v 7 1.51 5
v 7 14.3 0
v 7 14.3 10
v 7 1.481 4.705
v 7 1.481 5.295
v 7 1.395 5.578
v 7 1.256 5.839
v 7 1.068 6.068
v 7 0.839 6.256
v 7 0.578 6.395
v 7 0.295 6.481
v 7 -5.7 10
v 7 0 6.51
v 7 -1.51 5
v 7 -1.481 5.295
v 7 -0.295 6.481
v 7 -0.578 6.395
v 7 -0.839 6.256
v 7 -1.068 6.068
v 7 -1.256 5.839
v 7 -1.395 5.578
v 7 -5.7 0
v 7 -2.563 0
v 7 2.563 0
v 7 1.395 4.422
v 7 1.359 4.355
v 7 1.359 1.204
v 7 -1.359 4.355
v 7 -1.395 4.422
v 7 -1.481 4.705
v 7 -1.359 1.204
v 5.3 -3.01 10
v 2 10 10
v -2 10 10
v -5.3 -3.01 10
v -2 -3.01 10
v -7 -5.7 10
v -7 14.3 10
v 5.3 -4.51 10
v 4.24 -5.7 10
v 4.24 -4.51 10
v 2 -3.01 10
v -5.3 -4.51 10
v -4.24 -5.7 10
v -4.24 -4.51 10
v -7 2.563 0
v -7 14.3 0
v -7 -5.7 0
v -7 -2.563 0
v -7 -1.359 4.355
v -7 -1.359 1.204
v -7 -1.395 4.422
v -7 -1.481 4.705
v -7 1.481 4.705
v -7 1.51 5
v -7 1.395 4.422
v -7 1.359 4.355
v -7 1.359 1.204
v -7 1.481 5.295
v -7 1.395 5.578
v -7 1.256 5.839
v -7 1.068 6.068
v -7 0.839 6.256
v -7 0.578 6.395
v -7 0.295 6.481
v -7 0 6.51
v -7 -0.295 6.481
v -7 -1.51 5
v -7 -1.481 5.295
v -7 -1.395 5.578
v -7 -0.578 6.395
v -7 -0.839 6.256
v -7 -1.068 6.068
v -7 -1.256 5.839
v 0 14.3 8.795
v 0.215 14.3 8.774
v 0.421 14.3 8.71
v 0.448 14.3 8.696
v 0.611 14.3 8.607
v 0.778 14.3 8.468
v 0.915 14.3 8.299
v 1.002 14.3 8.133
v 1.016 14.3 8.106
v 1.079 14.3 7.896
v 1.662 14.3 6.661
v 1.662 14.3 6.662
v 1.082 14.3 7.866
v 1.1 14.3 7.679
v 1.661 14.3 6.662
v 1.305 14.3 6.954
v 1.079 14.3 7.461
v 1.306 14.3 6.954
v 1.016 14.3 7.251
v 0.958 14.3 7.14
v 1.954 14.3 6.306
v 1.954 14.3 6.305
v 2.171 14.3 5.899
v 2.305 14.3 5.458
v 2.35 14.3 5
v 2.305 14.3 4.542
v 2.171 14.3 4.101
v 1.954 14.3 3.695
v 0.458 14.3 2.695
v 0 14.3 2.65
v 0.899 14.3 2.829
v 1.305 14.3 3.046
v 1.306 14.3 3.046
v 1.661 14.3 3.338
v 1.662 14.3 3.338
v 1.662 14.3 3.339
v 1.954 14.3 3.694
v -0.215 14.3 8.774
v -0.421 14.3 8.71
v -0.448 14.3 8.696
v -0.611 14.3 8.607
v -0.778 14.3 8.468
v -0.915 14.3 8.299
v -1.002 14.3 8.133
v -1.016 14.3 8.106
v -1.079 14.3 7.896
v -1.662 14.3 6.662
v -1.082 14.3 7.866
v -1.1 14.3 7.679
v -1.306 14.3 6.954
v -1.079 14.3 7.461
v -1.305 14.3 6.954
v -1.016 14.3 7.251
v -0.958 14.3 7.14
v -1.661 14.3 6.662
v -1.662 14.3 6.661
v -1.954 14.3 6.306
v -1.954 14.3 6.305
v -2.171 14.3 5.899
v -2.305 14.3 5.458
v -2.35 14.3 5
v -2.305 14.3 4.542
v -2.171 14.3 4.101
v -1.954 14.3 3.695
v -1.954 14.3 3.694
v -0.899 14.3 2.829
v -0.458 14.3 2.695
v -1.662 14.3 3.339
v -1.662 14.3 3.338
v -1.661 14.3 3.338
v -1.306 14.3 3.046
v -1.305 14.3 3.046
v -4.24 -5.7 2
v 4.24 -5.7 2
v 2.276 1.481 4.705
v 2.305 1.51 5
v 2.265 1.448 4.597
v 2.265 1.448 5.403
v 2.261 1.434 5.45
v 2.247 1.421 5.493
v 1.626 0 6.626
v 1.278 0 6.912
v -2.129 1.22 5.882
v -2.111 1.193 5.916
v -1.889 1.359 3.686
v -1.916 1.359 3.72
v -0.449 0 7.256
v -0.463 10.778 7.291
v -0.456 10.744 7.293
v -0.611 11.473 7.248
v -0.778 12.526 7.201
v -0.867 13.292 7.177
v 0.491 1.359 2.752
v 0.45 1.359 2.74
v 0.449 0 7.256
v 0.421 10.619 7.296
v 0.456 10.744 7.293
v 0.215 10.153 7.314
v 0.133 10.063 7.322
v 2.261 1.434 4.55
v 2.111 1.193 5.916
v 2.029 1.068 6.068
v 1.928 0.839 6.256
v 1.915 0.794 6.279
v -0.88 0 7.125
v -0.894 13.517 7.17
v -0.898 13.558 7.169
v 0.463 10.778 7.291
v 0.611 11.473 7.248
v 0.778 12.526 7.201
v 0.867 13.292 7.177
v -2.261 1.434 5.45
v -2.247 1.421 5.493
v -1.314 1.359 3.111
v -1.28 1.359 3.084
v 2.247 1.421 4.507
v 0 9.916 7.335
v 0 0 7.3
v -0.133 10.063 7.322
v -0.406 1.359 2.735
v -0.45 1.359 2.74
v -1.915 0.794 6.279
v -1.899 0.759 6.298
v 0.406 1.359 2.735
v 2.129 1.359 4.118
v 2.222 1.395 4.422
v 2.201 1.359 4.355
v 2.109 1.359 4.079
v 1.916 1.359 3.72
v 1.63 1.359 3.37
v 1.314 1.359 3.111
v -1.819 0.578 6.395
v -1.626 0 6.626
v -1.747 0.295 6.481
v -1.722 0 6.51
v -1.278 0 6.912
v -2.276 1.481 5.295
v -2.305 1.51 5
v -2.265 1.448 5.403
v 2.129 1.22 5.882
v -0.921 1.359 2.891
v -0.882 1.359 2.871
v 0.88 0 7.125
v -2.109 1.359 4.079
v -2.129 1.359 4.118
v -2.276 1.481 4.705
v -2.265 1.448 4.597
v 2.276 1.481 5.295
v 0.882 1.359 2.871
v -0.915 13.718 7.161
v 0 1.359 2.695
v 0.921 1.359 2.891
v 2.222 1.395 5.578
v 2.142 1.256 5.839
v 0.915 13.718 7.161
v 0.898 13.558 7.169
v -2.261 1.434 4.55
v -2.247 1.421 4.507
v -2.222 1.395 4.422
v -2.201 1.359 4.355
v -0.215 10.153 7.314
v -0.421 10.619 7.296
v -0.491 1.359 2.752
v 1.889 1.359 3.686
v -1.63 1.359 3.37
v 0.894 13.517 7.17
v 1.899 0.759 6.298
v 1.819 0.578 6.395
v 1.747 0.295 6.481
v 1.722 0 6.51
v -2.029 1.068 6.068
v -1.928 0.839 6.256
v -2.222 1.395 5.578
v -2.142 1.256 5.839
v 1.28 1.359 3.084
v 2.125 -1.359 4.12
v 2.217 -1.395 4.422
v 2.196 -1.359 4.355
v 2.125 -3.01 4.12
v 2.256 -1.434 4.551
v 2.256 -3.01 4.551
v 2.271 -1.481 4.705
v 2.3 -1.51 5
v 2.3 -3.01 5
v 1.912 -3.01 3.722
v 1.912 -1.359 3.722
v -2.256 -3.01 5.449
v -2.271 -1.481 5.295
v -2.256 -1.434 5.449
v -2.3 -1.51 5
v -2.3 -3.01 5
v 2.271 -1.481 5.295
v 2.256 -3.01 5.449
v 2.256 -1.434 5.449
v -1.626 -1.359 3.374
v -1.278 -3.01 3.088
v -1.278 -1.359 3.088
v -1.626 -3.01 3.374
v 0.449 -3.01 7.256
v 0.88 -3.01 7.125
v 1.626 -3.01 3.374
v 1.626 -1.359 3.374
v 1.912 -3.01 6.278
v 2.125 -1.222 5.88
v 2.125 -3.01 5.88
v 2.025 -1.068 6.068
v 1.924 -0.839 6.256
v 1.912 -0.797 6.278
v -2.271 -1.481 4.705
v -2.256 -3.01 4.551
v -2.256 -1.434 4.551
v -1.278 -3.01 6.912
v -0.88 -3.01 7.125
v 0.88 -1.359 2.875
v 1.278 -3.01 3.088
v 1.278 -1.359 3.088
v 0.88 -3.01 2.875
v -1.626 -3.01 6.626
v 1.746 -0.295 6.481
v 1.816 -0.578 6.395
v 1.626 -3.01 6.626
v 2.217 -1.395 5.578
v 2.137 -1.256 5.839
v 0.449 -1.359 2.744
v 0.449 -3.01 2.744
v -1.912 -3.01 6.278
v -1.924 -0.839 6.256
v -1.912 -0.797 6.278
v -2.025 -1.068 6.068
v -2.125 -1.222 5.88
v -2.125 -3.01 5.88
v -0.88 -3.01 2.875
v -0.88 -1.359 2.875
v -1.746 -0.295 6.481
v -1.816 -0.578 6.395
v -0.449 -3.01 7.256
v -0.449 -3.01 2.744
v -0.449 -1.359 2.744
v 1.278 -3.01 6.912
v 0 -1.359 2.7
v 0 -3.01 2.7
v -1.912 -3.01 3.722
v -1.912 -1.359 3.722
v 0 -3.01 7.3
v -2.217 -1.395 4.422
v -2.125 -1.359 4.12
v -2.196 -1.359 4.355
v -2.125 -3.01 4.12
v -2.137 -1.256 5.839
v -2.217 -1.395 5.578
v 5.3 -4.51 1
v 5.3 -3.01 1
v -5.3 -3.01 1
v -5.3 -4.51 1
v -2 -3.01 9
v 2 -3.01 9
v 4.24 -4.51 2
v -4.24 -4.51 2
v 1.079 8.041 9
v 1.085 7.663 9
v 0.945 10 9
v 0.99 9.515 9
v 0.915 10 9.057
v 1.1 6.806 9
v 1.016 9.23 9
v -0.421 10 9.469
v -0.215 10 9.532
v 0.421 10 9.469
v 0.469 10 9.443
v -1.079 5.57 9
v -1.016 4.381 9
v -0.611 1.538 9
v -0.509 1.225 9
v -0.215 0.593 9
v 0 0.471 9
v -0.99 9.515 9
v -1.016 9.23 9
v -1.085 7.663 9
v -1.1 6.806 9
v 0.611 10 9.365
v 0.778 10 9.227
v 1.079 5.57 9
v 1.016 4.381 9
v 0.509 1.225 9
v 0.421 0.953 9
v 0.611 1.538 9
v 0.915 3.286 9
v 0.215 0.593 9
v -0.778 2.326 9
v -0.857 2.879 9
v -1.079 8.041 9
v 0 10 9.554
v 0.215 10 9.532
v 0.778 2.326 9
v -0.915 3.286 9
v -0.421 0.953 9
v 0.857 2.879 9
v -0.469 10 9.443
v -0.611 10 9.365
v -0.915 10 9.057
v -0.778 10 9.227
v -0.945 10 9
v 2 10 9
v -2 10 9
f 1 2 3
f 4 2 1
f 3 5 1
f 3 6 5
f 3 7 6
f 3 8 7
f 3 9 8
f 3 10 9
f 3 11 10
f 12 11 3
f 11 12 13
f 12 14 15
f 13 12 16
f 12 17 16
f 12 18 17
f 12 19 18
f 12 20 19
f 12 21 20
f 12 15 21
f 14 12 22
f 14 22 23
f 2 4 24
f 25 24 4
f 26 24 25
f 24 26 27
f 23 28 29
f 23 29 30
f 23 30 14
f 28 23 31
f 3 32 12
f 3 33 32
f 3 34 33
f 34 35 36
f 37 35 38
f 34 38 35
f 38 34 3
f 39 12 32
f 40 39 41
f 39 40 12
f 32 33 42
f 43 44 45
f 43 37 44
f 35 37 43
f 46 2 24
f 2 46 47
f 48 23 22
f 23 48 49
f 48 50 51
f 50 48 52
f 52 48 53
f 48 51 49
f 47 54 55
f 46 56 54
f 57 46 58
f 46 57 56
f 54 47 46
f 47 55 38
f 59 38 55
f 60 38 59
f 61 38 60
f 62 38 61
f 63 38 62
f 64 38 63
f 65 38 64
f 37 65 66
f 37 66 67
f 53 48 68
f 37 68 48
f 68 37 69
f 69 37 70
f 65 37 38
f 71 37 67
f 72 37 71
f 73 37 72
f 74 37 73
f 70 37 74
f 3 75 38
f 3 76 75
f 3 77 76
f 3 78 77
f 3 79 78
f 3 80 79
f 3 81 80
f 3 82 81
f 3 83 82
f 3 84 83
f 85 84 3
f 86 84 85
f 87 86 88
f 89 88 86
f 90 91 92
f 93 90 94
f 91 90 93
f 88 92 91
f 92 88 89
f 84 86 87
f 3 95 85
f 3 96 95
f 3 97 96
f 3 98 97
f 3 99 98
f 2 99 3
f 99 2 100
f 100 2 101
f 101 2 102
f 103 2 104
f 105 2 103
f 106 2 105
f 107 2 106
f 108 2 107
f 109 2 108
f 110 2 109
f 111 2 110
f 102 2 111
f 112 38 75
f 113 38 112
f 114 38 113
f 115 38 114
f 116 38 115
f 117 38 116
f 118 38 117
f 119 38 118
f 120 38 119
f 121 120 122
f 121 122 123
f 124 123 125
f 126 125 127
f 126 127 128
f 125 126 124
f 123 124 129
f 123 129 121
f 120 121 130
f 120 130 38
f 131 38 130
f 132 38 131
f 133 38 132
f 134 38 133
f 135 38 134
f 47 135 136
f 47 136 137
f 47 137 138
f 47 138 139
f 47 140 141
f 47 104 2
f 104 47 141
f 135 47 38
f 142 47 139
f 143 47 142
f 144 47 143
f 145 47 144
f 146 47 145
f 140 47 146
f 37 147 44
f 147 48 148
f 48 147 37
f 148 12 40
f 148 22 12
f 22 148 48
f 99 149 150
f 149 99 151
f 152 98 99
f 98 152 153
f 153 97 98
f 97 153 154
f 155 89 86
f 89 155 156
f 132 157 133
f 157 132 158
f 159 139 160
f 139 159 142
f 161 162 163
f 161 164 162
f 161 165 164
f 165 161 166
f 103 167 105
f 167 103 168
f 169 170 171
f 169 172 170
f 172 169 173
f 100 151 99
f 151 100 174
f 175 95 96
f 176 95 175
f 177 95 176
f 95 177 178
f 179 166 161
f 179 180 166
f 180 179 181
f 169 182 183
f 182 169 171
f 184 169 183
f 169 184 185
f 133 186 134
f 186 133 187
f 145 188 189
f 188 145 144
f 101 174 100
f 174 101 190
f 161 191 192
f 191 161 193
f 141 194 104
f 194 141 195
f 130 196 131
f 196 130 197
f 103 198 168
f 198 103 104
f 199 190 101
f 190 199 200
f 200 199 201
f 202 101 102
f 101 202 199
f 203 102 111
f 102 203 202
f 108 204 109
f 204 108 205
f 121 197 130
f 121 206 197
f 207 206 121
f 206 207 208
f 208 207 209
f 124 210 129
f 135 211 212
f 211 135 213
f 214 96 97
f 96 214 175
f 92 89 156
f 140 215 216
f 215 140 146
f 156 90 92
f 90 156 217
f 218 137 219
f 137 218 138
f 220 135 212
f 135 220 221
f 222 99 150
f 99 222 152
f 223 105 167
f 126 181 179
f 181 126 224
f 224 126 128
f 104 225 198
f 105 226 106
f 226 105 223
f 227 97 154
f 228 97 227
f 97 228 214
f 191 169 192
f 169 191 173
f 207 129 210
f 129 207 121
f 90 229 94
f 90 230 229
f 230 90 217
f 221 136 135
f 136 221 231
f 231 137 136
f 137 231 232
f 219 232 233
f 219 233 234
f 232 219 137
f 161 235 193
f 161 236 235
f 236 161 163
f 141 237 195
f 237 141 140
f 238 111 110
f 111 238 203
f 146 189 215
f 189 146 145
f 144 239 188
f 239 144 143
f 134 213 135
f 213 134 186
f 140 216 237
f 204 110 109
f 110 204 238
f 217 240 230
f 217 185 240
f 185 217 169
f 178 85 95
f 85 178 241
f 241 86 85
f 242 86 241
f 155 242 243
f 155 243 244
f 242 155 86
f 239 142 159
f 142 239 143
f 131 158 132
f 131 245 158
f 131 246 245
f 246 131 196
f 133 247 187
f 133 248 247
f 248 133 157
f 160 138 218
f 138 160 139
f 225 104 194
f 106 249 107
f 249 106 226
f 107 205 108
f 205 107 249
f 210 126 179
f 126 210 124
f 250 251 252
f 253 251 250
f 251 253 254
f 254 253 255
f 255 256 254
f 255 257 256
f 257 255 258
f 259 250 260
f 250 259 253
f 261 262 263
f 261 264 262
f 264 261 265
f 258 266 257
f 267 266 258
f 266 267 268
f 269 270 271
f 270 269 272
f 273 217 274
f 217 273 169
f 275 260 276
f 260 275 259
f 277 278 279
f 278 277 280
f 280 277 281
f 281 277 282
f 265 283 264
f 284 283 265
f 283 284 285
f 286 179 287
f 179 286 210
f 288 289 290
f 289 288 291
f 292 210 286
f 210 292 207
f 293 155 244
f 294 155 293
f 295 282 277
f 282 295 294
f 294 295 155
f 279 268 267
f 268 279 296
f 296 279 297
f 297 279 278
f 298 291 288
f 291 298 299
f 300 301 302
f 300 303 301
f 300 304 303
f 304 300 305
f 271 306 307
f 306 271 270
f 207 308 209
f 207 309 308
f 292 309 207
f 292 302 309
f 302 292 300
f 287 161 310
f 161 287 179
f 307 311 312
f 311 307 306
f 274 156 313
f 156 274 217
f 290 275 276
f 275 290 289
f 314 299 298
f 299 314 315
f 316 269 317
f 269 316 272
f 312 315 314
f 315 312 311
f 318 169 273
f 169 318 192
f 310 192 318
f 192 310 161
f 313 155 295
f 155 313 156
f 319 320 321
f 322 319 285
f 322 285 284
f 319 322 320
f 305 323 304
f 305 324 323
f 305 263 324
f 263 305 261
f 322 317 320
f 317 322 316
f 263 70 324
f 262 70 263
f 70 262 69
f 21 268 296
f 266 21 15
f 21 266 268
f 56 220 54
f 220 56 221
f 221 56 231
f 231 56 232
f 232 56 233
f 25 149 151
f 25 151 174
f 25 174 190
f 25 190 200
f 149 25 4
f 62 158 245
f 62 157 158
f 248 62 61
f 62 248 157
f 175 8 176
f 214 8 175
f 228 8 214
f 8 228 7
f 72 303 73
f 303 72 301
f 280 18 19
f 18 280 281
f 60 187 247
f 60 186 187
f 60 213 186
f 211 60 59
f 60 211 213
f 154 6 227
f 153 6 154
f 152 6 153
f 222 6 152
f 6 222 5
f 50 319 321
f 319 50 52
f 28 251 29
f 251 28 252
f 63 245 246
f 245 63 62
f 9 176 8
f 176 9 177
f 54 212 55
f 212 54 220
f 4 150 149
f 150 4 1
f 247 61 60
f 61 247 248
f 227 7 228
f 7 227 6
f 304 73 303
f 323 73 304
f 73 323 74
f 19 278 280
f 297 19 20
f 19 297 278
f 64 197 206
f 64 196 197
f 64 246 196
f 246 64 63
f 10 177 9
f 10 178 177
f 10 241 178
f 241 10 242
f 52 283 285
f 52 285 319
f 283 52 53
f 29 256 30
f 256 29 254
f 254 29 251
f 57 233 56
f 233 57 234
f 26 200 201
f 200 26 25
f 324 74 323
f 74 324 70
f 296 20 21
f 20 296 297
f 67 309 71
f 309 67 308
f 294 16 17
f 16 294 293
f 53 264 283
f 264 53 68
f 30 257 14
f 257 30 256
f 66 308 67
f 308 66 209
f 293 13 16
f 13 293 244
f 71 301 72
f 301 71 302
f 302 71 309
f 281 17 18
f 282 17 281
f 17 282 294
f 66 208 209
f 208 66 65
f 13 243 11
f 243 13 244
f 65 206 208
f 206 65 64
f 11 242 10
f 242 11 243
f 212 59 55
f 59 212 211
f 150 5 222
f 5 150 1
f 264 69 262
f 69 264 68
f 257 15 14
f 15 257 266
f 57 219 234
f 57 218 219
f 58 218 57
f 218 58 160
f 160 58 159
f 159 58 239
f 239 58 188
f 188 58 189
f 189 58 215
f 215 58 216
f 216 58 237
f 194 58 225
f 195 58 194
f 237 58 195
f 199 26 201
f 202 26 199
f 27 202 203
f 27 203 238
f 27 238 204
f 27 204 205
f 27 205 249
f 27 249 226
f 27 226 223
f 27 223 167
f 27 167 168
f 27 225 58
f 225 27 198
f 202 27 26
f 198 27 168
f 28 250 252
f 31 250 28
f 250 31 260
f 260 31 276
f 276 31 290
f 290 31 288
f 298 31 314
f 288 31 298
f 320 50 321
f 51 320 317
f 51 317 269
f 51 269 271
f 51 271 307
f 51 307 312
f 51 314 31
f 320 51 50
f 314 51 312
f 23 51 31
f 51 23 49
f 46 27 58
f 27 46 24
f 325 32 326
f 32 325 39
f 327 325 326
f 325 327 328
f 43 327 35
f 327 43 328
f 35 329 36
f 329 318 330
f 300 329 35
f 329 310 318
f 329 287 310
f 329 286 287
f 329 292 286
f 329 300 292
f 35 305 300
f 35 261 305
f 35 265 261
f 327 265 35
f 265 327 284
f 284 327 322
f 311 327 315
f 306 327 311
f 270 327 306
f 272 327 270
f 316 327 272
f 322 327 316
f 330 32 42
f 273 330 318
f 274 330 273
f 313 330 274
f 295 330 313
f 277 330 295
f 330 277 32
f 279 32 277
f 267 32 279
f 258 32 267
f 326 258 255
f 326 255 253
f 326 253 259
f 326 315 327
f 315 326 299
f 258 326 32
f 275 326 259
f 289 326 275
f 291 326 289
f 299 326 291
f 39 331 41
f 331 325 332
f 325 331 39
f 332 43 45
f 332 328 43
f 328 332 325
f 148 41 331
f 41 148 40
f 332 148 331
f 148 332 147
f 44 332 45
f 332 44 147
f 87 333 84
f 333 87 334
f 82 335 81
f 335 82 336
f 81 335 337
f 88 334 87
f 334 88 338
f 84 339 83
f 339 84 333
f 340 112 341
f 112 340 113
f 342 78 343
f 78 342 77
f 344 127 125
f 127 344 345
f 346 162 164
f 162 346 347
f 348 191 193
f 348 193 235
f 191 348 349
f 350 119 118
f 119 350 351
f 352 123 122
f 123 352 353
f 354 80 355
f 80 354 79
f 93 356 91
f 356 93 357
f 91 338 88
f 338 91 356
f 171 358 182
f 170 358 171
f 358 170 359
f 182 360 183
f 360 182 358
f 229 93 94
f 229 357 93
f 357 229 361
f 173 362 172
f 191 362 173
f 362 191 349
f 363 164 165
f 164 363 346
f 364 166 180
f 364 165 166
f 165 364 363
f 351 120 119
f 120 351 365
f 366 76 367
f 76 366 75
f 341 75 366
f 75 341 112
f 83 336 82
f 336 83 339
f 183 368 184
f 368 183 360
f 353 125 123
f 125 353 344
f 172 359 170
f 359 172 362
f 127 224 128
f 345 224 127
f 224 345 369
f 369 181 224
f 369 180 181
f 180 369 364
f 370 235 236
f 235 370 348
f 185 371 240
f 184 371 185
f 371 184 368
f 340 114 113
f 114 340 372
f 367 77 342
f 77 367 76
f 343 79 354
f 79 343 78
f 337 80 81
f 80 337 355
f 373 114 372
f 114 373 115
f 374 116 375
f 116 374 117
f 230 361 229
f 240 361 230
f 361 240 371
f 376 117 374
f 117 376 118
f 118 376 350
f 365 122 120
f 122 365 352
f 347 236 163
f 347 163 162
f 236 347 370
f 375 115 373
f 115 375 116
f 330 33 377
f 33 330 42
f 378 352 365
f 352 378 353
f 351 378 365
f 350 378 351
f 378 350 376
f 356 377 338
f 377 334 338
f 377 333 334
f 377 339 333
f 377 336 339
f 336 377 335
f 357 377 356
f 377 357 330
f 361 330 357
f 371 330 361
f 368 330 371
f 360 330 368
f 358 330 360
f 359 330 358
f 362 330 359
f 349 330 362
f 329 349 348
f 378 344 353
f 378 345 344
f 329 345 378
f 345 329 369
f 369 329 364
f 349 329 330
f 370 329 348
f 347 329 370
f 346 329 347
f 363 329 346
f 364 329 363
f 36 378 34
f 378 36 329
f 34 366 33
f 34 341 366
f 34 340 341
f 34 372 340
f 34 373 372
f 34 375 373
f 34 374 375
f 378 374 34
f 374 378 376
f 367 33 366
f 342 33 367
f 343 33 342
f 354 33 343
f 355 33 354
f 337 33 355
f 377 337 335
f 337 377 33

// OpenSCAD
// file: light_connector_lib.scad
/*

  light_connector_lib.scad
   
  
  3mm x 120mm
  https://www.greenstuffworld.com/de/flugbasestaebe/600-3-mm-runde-acryl-staebe-transparent.html
  
*/
$fn=32;

width=14;
height=10;
length=20;
boxmove=1.3;
edgeDia = 3.02;
outerLWDia = 4.7;
innerLWDia = 4.6;
clipWidth = 10.6;
clipHeight = height;
clipThinkness = 1.5;
clipXWidth = clipWidth*0.8;
clipXThinkness = width;
clipXOffset = 1; 
clipOffset = 1; /* offset of the clip cutout above ground */
clipDistance = 1.5; /* distance from the edge to the clip=wall between edge and clip */


module light_connector() {
  difference() {
    translate([-width/2, -width/2+boxmove,0])
    cube([width, length, height]);

    /* LWL cutout */

    translate([0,0,height/2])
    rotate([-90,0,0])
    cylinder(d1=innerLWDia, d2=outerLWDia, h=length-width/2+boxmove+0.01);

    /* touch pad reflection hole */

    translate([0,-width,height/2])
    rotate([-90,0,0])
    cylinder(d=innerLWDia, h=length);

    /* ikosidodekaeder edge cutout */
    
    translate([0,0,height/2])
    rotate([0,90,0])
    cylinder(d=edgeDia, h=width+0.02, center=true);
    
    translate([0,0,-edgeDia*0.2])  
    cube([width+0.02, edgeDia*0.9, height], center=true);

    /* chamfer to reduce issues with brim */
    
    rotate([45,0,0])
    cube([width+0.02, edgeDia*1.2, edgeDia*1.2], center=true);

    /* battery clip cutout */
    
    translate([-clipWidth/2,-clipThinkness-edgeDia/2-clipDistance,clipOffset])
    cube([clipWidth, clipThinkness, clipHeight]);

    translate([-clipXWidth/2,-clipXThinkness-clipThinkness-edgeDia/2-clipDistance+0.01,clipXOffset+clipOffset])
    cube([clipXWidth, clipXThinkness, clipHeight]);
    

    /* battery clip wire connection */
    translate([0,0,height+0.2])
    rotate([80,0,0])
    cylinder(d=2.2, h=length*2, center=true);

    translate([0,0,height])
    cube([4, length*1.0, 2], center=true);
    
  }
}
// main file
/*

  light_connector.scad
   
  
  3mm x 120mm
  https://www.greenstuffworld.com/de/flugbasestaebe/600-3-mm-runde-acryl-staebe-transparent.html
  
  
  Todo:
    - battery clip aufnehmer muss breiter sein
        --> ok
    - kleinerer durchmesser für den LWL vergrößern, damit der LWL am Stab anstoßen kann
        --> ok
  
*/

include <light_connector_lib.scad>

light_connector();
